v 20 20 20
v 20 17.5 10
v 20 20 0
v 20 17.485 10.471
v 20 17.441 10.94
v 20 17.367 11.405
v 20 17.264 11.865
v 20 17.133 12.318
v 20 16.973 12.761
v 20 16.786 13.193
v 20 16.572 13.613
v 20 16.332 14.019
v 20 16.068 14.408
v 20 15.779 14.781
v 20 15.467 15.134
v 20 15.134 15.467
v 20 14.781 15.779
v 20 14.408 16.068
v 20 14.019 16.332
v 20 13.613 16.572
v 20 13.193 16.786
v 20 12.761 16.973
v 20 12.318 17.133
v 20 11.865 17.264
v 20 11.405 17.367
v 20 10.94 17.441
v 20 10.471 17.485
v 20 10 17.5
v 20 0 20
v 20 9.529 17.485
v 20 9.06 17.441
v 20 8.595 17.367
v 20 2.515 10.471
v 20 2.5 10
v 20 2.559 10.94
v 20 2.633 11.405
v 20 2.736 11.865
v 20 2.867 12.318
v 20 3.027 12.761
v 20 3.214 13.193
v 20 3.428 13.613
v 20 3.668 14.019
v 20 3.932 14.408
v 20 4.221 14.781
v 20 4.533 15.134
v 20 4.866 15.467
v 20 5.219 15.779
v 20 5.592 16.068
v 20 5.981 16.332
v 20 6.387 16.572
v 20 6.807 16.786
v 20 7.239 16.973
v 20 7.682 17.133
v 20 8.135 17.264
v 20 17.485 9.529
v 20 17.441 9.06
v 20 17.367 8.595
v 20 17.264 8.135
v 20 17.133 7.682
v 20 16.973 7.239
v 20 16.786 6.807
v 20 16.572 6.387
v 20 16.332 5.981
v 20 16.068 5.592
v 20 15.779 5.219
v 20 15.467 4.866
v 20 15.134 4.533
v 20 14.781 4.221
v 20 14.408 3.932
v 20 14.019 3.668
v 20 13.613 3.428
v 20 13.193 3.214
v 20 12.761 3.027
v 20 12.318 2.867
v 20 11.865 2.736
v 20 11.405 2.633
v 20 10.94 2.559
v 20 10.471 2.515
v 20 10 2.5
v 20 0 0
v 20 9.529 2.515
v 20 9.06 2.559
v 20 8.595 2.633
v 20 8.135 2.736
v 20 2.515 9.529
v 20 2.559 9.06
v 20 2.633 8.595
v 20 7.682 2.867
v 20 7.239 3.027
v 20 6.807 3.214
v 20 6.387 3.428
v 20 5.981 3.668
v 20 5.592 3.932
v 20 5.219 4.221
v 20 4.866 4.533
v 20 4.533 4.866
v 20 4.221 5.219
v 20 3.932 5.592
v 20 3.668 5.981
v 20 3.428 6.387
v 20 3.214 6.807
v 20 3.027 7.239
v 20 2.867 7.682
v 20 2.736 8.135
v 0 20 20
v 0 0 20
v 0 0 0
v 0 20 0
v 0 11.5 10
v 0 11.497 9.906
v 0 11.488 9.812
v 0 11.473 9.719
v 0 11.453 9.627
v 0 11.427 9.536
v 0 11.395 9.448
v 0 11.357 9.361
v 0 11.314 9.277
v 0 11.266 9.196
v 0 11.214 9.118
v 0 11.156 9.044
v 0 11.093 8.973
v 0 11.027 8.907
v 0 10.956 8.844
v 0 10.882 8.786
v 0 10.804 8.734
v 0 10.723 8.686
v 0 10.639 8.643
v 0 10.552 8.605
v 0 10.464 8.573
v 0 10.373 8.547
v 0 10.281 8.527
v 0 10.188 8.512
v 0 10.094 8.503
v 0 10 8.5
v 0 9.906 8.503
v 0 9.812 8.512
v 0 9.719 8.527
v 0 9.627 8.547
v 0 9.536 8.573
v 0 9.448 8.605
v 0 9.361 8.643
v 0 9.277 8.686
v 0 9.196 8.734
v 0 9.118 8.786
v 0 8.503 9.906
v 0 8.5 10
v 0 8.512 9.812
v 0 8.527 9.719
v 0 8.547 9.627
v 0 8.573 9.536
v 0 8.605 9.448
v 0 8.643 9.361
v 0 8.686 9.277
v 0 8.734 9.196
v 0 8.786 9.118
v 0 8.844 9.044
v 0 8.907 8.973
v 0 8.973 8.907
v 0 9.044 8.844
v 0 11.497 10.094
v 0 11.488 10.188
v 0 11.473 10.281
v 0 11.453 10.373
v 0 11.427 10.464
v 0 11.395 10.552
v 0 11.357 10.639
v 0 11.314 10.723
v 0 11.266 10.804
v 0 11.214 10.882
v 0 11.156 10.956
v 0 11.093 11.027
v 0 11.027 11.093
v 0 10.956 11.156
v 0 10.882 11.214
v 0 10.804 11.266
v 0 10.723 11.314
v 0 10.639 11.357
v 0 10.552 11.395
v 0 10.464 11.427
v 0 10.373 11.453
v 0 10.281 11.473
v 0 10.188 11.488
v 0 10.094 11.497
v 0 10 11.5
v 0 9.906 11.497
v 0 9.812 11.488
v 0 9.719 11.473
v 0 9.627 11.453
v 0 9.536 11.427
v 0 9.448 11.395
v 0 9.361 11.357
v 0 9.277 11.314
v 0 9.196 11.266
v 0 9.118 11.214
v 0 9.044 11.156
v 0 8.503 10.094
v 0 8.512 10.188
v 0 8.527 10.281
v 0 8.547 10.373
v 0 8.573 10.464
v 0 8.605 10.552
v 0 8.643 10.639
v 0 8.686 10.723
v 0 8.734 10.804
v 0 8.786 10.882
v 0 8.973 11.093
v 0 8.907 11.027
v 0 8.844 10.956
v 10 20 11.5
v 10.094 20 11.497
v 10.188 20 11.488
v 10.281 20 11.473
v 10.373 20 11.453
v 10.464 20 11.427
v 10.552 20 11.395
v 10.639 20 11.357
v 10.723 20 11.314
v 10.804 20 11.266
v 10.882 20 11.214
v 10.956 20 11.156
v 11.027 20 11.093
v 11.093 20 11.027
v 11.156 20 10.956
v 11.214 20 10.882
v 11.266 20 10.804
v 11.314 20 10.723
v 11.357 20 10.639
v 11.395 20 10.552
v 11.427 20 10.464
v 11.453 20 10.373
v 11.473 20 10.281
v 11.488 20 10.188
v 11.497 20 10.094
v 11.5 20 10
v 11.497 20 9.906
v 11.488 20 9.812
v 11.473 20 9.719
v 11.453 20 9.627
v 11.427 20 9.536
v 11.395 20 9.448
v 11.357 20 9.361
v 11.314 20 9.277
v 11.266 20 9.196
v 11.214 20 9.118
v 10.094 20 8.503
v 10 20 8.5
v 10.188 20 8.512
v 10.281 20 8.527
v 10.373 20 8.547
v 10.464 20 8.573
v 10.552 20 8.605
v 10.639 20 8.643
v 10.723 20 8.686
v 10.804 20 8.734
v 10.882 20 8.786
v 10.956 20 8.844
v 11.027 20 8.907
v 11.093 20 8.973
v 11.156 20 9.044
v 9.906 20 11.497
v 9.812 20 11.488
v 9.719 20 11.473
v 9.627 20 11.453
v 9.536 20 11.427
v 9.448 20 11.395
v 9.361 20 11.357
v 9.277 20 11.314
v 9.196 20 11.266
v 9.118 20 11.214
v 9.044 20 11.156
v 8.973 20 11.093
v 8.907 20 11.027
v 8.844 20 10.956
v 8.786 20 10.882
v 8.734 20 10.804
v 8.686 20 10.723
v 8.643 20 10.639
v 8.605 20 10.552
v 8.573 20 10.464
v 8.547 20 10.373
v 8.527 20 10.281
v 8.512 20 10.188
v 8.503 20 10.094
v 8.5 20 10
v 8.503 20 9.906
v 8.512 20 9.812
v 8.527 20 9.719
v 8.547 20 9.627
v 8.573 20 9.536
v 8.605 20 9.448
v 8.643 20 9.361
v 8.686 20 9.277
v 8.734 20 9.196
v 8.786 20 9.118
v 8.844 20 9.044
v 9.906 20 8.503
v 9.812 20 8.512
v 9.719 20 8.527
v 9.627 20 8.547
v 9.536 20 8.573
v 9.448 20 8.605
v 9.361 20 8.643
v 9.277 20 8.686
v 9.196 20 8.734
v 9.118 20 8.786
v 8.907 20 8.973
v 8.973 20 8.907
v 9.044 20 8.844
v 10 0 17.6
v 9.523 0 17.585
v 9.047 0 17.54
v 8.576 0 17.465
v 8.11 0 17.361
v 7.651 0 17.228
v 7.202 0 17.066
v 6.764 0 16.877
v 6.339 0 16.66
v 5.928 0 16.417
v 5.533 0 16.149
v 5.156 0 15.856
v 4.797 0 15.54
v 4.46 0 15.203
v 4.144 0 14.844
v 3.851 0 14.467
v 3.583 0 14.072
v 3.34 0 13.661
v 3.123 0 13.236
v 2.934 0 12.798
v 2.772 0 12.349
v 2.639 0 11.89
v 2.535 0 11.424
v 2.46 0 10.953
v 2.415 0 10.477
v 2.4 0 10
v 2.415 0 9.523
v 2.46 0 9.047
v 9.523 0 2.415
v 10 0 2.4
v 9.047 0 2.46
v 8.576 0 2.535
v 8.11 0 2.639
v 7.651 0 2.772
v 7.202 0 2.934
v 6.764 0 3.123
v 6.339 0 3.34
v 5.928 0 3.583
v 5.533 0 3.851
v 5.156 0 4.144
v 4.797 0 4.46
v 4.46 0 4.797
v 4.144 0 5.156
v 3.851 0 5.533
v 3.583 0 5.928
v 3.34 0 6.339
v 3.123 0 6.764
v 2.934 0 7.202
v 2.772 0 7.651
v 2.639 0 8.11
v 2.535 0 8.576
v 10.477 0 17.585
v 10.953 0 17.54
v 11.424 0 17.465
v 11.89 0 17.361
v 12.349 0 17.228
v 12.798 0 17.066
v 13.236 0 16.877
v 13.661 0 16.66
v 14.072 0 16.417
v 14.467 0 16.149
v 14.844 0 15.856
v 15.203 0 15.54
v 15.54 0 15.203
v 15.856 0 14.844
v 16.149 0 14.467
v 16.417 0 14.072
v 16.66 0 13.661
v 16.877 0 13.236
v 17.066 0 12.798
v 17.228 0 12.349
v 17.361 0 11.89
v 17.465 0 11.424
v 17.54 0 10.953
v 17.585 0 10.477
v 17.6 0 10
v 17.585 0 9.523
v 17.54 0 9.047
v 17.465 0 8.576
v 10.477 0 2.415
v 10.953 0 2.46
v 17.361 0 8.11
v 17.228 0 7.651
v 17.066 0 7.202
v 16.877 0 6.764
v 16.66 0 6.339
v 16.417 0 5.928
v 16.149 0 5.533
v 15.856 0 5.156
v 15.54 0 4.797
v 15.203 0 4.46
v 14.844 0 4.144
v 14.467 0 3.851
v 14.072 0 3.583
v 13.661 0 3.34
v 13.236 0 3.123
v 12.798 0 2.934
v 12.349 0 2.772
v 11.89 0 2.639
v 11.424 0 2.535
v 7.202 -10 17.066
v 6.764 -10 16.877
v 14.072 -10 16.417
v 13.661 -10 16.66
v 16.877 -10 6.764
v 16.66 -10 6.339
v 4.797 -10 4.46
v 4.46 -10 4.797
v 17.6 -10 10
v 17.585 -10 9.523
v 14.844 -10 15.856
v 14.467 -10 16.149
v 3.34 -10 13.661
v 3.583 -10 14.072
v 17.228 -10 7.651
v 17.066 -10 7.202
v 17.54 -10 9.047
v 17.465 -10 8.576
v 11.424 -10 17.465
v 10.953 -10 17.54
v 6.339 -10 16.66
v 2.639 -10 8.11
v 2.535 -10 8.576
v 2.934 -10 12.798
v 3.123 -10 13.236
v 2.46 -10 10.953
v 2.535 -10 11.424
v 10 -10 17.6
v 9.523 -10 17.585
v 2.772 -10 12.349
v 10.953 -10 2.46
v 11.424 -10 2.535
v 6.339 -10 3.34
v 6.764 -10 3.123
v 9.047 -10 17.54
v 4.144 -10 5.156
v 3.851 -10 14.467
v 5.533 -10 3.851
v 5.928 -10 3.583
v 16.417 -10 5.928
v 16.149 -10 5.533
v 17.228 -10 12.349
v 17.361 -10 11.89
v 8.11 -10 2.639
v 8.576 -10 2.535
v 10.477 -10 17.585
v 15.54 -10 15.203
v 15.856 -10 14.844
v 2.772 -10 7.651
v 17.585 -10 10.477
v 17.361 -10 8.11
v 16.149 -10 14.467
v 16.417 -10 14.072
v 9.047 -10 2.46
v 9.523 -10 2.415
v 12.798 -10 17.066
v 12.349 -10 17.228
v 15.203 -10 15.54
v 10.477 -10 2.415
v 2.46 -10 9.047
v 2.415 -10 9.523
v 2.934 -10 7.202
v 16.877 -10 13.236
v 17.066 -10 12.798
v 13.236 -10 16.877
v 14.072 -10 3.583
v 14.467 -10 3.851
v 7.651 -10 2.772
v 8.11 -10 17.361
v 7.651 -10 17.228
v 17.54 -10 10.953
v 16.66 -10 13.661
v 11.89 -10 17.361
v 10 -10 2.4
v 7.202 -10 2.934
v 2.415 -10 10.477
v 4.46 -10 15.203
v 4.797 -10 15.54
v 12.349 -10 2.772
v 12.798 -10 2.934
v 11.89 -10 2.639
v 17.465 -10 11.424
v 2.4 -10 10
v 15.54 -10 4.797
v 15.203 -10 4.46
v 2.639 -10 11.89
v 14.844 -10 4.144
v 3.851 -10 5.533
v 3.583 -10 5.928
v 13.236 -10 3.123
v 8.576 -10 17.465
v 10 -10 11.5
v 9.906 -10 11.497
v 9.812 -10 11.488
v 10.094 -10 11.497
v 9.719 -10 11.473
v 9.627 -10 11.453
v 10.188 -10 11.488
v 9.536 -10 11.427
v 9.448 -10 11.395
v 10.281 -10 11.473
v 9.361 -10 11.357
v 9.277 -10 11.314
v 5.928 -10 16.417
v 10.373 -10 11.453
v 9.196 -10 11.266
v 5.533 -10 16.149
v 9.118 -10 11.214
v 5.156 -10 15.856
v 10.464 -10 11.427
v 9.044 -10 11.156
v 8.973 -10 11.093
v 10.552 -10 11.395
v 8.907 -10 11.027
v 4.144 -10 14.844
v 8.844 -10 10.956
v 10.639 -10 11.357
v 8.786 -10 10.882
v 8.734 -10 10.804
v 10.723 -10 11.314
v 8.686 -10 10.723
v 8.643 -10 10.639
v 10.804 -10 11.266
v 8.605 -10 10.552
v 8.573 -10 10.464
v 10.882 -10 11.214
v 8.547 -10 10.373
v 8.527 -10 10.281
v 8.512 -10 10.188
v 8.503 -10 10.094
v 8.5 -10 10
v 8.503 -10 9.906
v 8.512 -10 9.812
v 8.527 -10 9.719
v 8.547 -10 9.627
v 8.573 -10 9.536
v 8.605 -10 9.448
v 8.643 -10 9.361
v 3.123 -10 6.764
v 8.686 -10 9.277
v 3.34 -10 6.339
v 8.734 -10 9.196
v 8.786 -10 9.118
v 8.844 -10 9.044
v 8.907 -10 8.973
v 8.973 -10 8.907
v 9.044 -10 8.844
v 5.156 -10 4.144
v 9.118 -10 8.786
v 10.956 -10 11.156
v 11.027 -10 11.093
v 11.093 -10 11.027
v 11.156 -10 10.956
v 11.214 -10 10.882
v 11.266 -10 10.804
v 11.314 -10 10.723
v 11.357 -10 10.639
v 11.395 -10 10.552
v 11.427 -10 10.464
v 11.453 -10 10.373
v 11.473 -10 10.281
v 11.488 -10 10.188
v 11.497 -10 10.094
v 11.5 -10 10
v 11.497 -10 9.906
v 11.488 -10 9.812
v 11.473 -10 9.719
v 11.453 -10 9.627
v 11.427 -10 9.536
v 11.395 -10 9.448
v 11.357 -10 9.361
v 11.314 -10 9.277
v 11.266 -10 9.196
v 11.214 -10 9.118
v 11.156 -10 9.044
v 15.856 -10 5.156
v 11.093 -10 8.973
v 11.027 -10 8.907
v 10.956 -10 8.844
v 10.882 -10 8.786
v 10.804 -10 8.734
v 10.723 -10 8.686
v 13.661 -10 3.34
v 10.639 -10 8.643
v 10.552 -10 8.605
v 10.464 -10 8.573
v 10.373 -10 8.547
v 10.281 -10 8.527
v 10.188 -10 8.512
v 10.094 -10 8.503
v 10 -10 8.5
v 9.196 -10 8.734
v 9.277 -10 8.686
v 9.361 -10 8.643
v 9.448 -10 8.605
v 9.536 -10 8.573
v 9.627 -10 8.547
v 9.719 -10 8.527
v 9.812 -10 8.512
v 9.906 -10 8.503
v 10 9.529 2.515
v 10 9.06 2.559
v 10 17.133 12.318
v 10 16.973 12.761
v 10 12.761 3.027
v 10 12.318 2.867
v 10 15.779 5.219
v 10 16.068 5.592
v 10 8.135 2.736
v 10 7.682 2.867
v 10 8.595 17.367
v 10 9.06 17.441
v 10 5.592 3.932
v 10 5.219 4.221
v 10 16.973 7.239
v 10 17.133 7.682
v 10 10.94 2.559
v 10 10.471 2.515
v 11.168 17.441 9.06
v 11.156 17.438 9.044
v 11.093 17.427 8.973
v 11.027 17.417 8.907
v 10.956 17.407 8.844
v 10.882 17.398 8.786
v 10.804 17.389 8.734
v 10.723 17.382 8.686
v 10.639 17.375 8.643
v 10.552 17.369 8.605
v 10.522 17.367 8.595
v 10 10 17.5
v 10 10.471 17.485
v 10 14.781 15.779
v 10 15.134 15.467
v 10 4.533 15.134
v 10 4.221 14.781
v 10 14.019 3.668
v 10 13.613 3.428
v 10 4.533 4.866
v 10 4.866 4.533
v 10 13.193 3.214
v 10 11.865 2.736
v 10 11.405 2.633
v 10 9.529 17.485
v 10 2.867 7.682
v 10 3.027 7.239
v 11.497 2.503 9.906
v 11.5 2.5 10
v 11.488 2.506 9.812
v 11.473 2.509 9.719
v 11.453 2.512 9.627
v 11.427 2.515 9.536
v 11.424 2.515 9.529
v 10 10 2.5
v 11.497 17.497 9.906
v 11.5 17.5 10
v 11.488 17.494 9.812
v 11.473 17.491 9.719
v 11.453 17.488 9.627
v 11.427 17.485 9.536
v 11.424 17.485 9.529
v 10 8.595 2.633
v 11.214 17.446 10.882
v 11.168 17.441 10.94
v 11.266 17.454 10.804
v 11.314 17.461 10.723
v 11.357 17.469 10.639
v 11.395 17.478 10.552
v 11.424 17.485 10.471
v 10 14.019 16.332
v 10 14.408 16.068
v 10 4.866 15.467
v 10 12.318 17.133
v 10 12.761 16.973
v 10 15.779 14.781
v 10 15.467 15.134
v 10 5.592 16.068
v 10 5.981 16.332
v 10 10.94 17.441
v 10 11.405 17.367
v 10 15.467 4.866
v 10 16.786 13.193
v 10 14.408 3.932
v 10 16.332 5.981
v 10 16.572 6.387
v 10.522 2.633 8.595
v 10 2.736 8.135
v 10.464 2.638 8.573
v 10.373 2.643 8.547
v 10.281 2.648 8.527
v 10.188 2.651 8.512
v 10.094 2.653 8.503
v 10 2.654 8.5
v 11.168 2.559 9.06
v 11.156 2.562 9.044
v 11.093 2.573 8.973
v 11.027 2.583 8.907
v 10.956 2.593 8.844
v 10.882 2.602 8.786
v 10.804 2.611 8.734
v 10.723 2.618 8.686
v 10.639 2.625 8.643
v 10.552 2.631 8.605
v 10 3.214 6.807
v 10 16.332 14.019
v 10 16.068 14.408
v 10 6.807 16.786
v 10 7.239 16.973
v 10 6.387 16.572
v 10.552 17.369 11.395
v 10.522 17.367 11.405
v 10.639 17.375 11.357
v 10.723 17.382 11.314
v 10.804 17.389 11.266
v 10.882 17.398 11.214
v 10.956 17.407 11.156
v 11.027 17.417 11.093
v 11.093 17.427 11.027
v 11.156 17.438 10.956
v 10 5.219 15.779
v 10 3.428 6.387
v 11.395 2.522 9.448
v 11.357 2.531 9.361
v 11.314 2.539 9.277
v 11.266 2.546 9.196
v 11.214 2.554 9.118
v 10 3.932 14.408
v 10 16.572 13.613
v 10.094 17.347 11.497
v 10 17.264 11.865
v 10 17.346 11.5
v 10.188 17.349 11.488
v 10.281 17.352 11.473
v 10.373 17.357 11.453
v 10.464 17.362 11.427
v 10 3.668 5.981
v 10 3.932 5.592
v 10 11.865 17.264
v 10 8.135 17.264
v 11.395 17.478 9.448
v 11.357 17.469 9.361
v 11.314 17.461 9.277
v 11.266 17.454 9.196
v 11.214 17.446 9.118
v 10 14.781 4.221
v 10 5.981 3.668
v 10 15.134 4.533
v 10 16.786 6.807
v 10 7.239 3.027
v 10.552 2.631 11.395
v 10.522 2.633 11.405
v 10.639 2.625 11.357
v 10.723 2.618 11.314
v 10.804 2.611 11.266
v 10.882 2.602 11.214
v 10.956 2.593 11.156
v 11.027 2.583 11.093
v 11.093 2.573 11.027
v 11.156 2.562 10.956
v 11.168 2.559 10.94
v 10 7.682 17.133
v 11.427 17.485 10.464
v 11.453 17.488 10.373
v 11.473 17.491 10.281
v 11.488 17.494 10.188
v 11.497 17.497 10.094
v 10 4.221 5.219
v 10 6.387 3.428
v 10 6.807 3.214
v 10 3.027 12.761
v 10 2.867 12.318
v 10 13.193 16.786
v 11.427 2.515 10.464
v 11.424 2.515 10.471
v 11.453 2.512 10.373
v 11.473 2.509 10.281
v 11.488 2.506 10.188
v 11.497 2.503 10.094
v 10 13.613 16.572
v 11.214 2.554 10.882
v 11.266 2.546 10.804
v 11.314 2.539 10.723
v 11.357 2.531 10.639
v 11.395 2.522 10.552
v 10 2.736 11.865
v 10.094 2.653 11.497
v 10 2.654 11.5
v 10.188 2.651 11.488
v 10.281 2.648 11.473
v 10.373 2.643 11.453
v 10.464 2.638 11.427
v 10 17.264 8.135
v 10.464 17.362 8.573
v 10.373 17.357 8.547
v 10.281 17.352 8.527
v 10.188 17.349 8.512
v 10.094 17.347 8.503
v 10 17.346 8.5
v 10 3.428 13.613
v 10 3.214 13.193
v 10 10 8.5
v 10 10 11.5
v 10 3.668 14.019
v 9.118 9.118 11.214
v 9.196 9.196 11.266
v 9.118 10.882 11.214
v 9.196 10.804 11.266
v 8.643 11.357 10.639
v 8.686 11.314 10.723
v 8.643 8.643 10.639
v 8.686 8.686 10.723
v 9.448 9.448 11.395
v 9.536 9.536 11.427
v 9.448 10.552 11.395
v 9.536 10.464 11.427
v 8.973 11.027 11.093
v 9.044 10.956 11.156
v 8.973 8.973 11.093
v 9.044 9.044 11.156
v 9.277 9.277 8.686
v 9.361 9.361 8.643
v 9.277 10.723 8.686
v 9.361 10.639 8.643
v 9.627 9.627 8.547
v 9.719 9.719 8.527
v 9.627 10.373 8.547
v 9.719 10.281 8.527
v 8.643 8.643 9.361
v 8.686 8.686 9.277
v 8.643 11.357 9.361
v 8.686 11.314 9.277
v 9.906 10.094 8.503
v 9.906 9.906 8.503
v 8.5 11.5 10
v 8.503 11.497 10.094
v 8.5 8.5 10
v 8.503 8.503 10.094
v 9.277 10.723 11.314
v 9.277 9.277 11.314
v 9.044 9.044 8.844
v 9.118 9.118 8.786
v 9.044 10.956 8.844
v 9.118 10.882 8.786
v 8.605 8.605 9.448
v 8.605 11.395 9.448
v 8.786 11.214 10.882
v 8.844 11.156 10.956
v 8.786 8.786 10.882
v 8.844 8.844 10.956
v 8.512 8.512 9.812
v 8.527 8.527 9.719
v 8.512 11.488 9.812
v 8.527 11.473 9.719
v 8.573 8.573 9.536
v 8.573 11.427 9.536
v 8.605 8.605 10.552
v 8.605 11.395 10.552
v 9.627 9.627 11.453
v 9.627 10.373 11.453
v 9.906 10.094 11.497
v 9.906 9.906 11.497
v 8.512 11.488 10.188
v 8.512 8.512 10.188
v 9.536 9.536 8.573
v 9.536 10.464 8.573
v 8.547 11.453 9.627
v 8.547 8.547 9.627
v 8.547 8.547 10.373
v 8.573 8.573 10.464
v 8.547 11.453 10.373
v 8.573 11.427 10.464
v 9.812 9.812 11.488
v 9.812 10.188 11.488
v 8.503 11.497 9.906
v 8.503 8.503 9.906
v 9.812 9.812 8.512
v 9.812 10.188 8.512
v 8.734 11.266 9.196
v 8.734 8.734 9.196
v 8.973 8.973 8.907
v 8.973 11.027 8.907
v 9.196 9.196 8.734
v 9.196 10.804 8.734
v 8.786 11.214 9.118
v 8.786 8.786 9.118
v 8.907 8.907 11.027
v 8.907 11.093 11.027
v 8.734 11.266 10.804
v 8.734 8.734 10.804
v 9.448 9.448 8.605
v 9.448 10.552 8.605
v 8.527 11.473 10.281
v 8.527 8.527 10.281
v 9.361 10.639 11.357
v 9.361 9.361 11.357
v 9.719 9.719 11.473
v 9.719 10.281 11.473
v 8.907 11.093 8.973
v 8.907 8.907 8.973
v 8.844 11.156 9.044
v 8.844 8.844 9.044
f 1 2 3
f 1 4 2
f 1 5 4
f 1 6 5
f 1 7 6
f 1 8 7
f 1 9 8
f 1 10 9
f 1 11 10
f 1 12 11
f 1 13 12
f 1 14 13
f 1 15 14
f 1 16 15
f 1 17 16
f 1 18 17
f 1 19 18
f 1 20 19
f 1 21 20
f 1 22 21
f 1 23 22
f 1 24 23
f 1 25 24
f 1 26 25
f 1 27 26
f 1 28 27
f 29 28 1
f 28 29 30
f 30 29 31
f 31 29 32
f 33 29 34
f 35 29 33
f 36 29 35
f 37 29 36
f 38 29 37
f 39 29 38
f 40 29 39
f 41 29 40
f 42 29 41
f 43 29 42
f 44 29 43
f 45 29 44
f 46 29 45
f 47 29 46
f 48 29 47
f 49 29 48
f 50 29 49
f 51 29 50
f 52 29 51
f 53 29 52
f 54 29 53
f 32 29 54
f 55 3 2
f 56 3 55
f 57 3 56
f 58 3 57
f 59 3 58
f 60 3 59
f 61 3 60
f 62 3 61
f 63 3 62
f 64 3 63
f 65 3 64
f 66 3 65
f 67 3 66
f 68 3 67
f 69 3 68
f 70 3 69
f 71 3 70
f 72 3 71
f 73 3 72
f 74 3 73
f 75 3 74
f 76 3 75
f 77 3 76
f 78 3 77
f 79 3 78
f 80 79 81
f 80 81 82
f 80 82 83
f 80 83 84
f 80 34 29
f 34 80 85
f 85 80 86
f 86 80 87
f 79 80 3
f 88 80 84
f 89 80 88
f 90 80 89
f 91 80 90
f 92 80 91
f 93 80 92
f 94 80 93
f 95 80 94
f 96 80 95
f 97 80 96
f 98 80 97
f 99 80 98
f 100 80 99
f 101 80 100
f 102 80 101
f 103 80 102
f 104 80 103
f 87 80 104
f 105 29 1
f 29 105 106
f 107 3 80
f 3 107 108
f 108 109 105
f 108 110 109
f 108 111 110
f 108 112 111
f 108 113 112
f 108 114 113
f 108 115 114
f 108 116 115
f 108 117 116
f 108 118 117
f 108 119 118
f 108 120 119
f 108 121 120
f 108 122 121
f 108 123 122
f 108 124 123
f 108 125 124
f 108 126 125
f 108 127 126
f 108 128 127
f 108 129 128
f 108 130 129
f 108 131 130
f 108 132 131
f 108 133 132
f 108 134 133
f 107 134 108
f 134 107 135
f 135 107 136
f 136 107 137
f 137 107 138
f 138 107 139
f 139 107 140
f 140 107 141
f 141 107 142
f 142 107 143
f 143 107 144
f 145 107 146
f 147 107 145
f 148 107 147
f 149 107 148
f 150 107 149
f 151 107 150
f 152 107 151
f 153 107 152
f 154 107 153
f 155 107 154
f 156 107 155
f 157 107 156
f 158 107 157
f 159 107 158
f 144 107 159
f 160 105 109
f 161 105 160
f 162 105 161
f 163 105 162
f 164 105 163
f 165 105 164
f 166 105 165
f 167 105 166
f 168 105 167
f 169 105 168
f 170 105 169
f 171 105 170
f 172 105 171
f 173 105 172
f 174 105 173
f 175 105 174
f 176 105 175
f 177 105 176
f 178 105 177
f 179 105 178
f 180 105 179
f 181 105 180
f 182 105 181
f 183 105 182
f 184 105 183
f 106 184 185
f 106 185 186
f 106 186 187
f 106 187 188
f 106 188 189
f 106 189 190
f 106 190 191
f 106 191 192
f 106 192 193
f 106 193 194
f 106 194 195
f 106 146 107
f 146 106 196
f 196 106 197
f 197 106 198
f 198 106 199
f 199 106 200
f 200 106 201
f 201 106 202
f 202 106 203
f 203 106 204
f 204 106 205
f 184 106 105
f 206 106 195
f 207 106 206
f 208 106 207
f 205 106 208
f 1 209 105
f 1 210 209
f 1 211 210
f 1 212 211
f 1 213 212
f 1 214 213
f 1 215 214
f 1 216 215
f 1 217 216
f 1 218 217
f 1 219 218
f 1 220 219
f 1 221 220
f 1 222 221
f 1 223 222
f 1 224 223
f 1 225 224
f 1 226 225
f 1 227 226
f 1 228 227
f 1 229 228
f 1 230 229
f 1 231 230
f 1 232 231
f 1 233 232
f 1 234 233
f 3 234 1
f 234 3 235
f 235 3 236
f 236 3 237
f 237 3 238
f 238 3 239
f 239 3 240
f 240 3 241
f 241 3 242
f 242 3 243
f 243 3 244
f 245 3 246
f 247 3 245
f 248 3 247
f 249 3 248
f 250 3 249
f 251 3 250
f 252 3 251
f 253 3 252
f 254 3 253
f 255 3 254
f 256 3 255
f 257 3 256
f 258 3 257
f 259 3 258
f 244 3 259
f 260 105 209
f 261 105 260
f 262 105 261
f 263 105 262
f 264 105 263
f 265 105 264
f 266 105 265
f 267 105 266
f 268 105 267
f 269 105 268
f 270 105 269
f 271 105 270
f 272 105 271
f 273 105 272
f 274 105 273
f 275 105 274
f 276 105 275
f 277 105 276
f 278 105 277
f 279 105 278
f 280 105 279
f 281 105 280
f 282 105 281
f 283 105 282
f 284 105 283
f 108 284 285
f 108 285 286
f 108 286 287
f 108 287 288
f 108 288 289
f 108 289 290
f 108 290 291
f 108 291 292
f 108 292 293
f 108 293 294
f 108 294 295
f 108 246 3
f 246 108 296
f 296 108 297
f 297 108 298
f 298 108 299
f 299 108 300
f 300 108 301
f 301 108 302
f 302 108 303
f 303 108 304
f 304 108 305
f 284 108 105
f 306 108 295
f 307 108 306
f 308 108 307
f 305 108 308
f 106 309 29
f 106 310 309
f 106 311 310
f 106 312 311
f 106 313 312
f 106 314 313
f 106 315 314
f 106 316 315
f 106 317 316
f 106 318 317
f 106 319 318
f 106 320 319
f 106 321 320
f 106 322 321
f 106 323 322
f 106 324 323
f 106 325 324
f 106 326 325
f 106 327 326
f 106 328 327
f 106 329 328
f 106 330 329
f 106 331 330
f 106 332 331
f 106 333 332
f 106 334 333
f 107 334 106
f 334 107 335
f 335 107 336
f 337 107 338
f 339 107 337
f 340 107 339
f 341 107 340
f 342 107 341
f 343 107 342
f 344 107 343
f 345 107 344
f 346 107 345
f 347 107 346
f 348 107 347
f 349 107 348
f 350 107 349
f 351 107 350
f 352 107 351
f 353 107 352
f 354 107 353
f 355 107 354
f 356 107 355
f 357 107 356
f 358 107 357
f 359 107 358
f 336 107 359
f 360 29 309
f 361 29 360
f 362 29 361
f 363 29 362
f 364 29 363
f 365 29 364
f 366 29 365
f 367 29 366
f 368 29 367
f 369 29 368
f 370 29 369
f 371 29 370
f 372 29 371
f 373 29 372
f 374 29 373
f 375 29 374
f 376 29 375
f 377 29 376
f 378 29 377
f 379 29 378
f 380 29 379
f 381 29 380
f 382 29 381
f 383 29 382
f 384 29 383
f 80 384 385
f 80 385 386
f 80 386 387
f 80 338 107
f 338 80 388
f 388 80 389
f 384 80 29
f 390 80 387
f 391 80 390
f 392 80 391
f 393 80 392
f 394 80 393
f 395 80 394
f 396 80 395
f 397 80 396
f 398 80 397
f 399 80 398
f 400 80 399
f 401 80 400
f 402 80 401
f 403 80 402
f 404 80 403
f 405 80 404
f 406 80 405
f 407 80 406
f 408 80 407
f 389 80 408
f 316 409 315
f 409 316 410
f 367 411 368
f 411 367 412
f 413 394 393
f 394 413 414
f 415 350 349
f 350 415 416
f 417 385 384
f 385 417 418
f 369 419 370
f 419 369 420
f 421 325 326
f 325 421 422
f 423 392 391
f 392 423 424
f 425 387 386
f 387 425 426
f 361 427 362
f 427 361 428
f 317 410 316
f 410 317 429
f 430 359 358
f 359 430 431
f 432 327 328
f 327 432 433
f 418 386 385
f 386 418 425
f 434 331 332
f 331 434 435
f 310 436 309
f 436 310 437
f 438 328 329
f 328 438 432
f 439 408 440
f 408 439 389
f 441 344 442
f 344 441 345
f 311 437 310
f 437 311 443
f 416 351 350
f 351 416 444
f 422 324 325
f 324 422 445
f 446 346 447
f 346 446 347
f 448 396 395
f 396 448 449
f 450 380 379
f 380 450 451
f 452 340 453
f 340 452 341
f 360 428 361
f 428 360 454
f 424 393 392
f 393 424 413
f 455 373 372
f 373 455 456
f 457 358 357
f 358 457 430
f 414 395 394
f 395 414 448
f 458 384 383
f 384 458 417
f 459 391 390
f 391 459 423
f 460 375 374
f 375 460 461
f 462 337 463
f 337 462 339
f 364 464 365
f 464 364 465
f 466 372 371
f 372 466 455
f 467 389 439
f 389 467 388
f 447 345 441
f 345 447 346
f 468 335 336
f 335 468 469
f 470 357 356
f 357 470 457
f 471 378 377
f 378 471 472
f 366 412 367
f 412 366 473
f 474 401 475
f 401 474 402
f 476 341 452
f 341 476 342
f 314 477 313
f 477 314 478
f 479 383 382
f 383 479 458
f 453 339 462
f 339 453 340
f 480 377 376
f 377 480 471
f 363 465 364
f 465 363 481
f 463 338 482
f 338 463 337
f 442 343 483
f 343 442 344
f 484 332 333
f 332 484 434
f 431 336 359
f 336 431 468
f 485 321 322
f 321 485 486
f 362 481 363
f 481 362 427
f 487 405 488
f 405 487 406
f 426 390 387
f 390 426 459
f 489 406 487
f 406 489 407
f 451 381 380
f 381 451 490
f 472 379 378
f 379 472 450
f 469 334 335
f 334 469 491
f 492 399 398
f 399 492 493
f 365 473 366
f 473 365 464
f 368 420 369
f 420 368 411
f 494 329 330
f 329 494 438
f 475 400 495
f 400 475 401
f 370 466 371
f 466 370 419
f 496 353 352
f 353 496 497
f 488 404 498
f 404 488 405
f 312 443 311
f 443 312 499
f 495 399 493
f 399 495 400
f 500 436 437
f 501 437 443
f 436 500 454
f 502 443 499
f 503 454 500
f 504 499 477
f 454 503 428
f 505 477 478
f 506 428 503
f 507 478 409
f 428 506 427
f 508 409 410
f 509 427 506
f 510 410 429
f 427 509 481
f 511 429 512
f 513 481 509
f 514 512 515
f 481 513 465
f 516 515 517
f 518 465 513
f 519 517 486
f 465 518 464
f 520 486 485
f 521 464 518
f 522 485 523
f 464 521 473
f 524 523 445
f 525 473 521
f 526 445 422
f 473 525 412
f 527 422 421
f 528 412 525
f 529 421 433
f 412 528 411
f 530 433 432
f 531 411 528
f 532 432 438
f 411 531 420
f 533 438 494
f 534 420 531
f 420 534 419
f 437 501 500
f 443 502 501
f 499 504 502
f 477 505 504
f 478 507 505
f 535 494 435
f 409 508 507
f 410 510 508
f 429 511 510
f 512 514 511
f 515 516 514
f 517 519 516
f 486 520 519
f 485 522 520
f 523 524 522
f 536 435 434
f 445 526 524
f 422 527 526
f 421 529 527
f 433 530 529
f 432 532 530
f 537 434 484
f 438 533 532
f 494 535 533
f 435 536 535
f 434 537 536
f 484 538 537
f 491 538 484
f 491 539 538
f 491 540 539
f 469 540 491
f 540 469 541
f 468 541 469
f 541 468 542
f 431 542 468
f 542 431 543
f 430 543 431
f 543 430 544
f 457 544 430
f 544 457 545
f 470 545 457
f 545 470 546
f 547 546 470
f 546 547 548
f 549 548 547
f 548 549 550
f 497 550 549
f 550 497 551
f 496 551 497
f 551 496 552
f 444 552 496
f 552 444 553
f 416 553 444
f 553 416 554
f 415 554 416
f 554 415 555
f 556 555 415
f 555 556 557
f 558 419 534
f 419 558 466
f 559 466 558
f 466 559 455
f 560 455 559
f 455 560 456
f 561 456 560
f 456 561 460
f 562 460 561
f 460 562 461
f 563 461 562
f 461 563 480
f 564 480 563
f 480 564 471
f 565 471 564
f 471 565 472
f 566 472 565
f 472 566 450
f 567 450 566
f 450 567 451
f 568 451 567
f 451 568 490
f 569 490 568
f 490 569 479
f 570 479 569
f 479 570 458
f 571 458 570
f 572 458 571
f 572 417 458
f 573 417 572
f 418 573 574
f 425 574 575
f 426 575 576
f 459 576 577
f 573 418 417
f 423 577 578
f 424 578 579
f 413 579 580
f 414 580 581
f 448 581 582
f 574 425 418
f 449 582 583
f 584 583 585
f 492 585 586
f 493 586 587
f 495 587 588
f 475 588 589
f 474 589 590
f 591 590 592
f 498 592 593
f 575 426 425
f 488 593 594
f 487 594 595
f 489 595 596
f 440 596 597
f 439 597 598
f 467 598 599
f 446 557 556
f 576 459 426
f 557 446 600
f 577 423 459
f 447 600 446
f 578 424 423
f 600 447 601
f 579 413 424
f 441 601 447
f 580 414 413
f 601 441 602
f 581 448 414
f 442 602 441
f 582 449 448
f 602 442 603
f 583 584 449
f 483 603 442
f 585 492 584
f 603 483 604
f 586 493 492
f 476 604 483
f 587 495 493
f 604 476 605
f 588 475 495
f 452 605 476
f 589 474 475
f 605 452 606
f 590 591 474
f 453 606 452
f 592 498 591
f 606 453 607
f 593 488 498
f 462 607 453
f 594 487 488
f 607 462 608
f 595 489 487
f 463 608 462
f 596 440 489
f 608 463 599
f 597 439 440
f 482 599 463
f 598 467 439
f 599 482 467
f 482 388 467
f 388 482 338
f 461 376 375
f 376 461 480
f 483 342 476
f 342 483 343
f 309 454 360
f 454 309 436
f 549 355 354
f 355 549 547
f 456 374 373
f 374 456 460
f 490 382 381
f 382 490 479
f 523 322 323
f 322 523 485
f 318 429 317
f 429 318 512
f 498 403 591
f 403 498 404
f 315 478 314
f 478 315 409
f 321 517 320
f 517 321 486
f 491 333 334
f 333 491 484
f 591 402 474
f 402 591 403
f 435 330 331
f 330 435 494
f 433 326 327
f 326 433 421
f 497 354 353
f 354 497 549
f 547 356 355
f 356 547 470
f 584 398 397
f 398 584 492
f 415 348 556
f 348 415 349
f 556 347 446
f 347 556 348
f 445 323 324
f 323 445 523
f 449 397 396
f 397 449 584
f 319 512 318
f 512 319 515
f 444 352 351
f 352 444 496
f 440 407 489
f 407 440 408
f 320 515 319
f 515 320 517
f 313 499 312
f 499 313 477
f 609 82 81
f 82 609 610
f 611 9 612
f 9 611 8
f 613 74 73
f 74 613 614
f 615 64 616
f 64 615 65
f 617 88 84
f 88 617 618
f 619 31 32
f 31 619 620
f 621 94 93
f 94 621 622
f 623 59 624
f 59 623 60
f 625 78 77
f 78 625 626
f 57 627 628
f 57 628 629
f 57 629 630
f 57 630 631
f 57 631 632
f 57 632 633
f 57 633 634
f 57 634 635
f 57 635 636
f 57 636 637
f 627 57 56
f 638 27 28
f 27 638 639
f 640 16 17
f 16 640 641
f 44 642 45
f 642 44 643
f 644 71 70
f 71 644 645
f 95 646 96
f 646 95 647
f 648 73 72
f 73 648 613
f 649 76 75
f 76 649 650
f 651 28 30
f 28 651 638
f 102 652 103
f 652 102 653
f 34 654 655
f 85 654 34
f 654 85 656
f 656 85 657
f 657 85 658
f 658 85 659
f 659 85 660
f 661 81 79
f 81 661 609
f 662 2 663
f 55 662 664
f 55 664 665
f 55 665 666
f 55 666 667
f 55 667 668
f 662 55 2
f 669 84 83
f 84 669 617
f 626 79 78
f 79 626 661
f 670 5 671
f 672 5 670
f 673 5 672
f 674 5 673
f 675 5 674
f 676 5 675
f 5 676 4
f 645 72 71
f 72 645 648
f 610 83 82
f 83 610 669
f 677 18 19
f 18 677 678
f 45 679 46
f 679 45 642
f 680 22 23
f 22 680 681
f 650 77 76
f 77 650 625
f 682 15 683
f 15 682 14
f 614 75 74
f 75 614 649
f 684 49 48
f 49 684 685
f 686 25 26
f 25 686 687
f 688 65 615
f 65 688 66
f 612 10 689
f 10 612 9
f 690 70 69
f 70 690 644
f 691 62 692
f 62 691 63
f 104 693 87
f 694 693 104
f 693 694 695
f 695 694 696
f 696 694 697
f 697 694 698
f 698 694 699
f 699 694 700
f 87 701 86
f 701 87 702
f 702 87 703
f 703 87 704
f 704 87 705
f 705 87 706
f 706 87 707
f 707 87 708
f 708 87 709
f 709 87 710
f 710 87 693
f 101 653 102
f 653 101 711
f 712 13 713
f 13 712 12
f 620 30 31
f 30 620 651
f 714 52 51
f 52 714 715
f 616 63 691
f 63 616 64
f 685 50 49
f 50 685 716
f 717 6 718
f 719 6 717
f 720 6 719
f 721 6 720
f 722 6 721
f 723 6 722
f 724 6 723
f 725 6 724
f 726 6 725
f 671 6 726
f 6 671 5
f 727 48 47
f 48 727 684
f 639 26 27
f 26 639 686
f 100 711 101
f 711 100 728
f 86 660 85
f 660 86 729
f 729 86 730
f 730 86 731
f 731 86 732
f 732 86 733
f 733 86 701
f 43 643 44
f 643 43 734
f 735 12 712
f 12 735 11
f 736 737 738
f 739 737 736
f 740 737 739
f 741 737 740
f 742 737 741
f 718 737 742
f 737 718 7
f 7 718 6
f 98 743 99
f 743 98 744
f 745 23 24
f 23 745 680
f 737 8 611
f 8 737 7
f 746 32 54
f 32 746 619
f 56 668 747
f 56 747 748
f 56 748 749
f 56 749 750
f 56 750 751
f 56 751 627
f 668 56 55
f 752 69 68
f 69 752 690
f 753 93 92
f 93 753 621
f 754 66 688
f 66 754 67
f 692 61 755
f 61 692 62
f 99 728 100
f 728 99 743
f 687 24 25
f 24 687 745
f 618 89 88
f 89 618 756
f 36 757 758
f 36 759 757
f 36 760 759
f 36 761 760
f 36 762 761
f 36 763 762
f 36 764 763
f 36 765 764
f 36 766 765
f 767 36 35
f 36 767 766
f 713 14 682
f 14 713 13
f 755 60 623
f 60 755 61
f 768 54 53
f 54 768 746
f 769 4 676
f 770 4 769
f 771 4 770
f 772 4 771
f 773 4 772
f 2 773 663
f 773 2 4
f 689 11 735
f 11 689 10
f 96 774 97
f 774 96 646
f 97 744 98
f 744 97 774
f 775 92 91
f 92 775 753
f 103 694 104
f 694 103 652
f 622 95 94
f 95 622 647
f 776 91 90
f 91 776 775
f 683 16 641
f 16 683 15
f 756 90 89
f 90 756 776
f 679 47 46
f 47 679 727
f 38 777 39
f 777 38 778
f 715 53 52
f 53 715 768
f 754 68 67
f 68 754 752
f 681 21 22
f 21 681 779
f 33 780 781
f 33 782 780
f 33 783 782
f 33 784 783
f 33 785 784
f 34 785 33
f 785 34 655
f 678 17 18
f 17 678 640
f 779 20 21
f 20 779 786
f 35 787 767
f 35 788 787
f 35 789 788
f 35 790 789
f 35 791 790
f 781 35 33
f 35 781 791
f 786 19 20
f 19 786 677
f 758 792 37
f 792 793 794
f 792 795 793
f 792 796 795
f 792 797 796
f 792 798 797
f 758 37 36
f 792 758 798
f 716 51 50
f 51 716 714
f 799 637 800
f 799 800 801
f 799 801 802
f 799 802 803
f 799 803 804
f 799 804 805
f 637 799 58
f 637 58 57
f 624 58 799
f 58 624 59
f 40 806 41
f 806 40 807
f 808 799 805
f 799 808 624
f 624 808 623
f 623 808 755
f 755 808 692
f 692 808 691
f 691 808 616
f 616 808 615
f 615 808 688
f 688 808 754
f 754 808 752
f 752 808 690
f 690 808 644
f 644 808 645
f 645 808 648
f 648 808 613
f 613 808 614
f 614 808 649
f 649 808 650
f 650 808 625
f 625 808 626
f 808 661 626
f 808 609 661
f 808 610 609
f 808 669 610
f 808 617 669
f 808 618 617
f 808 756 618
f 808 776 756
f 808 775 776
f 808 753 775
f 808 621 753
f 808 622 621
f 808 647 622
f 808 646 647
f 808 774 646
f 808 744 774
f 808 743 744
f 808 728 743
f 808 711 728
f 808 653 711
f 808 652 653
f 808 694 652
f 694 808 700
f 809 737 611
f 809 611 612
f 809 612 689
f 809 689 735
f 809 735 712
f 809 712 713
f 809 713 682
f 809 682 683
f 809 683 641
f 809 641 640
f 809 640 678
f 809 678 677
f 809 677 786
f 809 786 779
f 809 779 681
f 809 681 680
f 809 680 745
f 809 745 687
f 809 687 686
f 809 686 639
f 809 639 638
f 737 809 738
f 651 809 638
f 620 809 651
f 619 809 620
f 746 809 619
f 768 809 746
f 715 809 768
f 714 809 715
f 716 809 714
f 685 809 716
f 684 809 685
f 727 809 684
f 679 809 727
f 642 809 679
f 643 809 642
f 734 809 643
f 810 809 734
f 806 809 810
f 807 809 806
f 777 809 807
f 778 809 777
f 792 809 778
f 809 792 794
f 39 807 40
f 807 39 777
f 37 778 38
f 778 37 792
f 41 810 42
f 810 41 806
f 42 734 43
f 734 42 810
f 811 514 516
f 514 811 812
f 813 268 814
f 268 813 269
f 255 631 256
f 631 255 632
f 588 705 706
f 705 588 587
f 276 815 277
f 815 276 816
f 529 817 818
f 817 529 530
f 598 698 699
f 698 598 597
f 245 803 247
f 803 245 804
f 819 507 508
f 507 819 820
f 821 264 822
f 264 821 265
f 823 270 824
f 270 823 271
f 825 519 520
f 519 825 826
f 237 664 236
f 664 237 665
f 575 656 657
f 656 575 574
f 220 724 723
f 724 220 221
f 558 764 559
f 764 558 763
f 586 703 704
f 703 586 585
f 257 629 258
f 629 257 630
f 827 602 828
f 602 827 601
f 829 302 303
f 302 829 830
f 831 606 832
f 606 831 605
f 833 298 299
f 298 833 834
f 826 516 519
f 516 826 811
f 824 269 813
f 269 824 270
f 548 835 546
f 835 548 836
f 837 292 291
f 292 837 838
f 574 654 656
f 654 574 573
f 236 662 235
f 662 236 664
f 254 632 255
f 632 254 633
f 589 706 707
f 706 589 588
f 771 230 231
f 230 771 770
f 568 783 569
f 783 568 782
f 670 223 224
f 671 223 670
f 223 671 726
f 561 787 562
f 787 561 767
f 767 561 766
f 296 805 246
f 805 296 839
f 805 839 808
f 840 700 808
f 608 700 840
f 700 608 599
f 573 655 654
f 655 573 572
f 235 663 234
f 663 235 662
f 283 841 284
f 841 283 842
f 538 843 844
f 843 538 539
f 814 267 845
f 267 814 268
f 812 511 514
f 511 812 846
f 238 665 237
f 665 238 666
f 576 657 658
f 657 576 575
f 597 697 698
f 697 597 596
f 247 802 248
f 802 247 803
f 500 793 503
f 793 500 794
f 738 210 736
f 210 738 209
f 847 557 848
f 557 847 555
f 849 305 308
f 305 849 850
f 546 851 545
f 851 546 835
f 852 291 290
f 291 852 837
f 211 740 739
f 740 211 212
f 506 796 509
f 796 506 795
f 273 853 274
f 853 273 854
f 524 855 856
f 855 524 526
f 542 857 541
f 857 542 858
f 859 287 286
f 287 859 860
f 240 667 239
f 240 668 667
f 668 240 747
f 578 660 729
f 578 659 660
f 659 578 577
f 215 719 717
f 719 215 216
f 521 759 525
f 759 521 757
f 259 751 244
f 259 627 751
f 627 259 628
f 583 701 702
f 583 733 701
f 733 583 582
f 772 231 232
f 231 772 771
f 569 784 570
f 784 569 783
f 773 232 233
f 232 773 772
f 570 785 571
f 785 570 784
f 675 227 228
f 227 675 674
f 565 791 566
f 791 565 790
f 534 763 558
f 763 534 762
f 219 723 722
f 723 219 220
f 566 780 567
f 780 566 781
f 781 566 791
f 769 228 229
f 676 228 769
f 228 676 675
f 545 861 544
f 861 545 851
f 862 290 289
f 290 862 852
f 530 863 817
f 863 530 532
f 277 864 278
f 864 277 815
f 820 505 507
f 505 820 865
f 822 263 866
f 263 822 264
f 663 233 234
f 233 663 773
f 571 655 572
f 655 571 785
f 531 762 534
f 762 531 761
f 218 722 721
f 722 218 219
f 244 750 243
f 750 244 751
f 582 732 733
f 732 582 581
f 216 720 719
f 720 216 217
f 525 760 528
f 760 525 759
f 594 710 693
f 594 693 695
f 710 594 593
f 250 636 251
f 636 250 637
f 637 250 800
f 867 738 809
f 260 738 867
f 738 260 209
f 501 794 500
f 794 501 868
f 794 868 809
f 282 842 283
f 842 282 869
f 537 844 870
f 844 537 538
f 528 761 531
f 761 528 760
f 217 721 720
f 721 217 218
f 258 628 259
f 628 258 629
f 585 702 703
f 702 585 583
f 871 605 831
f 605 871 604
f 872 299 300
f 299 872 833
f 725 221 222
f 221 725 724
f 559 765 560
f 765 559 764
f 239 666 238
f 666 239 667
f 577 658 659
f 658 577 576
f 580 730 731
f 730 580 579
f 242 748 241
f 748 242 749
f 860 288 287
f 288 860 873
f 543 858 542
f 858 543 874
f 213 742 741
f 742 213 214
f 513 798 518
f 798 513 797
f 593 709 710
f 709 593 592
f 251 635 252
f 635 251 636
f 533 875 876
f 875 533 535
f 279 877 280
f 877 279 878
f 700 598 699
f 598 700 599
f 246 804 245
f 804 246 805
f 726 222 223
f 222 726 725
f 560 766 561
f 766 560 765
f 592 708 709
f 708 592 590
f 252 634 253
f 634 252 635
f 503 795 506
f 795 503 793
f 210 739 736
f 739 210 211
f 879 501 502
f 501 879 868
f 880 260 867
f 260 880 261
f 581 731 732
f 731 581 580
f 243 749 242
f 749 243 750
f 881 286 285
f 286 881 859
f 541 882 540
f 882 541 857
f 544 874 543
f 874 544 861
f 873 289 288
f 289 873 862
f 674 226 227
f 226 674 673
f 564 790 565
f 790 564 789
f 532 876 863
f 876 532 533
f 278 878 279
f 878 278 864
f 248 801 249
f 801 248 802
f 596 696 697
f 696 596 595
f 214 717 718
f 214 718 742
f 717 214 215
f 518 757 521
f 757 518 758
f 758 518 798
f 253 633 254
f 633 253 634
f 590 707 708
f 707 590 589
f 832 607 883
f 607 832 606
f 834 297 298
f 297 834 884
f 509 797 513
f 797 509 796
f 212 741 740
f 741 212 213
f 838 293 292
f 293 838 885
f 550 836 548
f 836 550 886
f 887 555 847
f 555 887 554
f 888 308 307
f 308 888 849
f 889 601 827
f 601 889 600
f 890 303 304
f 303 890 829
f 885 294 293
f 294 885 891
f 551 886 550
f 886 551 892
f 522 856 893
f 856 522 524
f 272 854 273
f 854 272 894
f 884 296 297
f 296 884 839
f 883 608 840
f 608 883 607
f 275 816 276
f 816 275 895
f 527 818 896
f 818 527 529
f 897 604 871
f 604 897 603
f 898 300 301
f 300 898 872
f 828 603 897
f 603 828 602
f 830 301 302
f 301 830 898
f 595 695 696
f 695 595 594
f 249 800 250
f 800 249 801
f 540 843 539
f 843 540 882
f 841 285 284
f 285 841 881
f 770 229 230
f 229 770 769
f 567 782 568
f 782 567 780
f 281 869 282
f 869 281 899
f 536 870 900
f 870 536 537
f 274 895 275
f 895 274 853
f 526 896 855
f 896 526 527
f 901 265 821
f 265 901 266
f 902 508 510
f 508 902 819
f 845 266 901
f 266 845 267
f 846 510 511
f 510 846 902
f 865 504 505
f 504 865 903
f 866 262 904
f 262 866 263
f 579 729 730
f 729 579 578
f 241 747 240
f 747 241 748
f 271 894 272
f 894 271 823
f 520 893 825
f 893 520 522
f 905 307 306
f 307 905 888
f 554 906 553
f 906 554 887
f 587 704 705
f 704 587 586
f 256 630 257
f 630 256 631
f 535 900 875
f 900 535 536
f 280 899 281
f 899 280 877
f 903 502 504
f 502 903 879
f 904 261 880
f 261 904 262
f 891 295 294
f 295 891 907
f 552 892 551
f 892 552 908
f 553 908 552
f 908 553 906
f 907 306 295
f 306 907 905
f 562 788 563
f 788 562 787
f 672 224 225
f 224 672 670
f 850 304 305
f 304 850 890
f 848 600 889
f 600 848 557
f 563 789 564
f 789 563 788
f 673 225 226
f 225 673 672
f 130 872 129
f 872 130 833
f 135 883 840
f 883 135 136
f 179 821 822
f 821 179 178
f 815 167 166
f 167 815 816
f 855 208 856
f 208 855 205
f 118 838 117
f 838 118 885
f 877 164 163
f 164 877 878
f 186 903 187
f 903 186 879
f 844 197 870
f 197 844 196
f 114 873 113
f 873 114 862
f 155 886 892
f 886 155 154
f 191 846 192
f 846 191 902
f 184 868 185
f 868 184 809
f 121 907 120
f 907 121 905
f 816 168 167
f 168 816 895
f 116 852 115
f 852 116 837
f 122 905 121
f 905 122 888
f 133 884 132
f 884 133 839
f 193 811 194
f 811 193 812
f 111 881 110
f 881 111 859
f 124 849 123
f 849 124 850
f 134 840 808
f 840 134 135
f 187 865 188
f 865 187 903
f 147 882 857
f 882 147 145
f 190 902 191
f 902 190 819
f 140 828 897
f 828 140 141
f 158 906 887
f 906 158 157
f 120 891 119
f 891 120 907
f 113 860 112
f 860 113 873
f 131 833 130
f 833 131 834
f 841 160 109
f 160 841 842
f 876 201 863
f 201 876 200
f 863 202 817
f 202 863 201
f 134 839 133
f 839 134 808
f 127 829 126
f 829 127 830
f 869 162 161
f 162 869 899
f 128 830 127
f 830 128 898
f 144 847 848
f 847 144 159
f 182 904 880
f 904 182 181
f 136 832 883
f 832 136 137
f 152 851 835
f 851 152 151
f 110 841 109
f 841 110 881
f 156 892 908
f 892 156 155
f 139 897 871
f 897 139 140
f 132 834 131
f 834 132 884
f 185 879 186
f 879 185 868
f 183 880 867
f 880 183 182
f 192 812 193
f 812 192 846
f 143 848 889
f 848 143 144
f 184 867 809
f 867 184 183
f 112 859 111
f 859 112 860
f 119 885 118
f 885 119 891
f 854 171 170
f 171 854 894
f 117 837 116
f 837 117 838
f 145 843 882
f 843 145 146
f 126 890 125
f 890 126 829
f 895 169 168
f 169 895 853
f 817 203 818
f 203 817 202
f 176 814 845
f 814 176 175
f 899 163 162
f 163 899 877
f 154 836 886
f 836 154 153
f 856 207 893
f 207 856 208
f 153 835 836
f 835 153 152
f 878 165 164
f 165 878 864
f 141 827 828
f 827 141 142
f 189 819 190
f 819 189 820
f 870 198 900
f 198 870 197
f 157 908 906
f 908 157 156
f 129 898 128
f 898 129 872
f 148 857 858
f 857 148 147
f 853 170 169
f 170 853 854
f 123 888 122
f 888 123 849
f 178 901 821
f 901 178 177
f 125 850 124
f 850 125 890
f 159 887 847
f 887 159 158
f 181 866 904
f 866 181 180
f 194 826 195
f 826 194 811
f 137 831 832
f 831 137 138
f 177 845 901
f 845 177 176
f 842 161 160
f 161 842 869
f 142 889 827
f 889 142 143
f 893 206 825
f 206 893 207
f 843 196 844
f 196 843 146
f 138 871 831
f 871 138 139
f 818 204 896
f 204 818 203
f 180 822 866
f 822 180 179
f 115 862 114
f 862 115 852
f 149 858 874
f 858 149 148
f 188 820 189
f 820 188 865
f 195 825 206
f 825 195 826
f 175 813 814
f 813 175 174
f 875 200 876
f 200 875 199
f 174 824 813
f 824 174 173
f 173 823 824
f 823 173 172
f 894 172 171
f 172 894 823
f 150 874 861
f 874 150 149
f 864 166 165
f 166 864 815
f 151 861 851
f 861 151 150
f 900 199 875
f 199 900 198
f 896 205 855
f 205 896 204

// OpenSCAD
plug_diam = (15 / 2);
plug_diam_extra = 0.1;
plug_depth = 10;
connecting_block_width = 20;
connecting_block_height = 20;
connecting_block_depth = 20;
m3_diam = 3 / 2;
$fn = 100;

difference()
{
    union()
    {
        cube([connecting_block_width, connecting_block_depth, connecting_block_height]);

        translate([plug_depth, -plug_depth, connecting_block_height / 2])
        {
            difference()
            {
                rotate(a = [-90, 0, 0])
                {
                    cylinder(h = plug_depth, r = plug_diam + plug_diam_extra, center = false);
                    
                }
            }
        }
    }
    
    translate([connecting_block_width - plug_depth, connecting_block_depth / 2, connecting_block_height / 2])
    {
        rotate([0, 90, 0])
        {
            cylinder(h = plug_depth, r = plug_diam, center = false);
        }
    }
    
    translate([plug_depth, -plug_depth, connecting_block_height / 2])
    {    
        rotate(a = [-90, 0, 0])
        {
            cylinder(h = plug_depth + connecting_block_depth, r = m3_diam, center = false);
        }
    }
 
    translate([0, connecting_block_depth / 2, connecting_block_height / 2])
    {    
        rotate(a = [0, 90, 0])
        {
            cylinder(h = connecting_block_depth, r = m3_diam, center = false);
        }
    }
    
}
